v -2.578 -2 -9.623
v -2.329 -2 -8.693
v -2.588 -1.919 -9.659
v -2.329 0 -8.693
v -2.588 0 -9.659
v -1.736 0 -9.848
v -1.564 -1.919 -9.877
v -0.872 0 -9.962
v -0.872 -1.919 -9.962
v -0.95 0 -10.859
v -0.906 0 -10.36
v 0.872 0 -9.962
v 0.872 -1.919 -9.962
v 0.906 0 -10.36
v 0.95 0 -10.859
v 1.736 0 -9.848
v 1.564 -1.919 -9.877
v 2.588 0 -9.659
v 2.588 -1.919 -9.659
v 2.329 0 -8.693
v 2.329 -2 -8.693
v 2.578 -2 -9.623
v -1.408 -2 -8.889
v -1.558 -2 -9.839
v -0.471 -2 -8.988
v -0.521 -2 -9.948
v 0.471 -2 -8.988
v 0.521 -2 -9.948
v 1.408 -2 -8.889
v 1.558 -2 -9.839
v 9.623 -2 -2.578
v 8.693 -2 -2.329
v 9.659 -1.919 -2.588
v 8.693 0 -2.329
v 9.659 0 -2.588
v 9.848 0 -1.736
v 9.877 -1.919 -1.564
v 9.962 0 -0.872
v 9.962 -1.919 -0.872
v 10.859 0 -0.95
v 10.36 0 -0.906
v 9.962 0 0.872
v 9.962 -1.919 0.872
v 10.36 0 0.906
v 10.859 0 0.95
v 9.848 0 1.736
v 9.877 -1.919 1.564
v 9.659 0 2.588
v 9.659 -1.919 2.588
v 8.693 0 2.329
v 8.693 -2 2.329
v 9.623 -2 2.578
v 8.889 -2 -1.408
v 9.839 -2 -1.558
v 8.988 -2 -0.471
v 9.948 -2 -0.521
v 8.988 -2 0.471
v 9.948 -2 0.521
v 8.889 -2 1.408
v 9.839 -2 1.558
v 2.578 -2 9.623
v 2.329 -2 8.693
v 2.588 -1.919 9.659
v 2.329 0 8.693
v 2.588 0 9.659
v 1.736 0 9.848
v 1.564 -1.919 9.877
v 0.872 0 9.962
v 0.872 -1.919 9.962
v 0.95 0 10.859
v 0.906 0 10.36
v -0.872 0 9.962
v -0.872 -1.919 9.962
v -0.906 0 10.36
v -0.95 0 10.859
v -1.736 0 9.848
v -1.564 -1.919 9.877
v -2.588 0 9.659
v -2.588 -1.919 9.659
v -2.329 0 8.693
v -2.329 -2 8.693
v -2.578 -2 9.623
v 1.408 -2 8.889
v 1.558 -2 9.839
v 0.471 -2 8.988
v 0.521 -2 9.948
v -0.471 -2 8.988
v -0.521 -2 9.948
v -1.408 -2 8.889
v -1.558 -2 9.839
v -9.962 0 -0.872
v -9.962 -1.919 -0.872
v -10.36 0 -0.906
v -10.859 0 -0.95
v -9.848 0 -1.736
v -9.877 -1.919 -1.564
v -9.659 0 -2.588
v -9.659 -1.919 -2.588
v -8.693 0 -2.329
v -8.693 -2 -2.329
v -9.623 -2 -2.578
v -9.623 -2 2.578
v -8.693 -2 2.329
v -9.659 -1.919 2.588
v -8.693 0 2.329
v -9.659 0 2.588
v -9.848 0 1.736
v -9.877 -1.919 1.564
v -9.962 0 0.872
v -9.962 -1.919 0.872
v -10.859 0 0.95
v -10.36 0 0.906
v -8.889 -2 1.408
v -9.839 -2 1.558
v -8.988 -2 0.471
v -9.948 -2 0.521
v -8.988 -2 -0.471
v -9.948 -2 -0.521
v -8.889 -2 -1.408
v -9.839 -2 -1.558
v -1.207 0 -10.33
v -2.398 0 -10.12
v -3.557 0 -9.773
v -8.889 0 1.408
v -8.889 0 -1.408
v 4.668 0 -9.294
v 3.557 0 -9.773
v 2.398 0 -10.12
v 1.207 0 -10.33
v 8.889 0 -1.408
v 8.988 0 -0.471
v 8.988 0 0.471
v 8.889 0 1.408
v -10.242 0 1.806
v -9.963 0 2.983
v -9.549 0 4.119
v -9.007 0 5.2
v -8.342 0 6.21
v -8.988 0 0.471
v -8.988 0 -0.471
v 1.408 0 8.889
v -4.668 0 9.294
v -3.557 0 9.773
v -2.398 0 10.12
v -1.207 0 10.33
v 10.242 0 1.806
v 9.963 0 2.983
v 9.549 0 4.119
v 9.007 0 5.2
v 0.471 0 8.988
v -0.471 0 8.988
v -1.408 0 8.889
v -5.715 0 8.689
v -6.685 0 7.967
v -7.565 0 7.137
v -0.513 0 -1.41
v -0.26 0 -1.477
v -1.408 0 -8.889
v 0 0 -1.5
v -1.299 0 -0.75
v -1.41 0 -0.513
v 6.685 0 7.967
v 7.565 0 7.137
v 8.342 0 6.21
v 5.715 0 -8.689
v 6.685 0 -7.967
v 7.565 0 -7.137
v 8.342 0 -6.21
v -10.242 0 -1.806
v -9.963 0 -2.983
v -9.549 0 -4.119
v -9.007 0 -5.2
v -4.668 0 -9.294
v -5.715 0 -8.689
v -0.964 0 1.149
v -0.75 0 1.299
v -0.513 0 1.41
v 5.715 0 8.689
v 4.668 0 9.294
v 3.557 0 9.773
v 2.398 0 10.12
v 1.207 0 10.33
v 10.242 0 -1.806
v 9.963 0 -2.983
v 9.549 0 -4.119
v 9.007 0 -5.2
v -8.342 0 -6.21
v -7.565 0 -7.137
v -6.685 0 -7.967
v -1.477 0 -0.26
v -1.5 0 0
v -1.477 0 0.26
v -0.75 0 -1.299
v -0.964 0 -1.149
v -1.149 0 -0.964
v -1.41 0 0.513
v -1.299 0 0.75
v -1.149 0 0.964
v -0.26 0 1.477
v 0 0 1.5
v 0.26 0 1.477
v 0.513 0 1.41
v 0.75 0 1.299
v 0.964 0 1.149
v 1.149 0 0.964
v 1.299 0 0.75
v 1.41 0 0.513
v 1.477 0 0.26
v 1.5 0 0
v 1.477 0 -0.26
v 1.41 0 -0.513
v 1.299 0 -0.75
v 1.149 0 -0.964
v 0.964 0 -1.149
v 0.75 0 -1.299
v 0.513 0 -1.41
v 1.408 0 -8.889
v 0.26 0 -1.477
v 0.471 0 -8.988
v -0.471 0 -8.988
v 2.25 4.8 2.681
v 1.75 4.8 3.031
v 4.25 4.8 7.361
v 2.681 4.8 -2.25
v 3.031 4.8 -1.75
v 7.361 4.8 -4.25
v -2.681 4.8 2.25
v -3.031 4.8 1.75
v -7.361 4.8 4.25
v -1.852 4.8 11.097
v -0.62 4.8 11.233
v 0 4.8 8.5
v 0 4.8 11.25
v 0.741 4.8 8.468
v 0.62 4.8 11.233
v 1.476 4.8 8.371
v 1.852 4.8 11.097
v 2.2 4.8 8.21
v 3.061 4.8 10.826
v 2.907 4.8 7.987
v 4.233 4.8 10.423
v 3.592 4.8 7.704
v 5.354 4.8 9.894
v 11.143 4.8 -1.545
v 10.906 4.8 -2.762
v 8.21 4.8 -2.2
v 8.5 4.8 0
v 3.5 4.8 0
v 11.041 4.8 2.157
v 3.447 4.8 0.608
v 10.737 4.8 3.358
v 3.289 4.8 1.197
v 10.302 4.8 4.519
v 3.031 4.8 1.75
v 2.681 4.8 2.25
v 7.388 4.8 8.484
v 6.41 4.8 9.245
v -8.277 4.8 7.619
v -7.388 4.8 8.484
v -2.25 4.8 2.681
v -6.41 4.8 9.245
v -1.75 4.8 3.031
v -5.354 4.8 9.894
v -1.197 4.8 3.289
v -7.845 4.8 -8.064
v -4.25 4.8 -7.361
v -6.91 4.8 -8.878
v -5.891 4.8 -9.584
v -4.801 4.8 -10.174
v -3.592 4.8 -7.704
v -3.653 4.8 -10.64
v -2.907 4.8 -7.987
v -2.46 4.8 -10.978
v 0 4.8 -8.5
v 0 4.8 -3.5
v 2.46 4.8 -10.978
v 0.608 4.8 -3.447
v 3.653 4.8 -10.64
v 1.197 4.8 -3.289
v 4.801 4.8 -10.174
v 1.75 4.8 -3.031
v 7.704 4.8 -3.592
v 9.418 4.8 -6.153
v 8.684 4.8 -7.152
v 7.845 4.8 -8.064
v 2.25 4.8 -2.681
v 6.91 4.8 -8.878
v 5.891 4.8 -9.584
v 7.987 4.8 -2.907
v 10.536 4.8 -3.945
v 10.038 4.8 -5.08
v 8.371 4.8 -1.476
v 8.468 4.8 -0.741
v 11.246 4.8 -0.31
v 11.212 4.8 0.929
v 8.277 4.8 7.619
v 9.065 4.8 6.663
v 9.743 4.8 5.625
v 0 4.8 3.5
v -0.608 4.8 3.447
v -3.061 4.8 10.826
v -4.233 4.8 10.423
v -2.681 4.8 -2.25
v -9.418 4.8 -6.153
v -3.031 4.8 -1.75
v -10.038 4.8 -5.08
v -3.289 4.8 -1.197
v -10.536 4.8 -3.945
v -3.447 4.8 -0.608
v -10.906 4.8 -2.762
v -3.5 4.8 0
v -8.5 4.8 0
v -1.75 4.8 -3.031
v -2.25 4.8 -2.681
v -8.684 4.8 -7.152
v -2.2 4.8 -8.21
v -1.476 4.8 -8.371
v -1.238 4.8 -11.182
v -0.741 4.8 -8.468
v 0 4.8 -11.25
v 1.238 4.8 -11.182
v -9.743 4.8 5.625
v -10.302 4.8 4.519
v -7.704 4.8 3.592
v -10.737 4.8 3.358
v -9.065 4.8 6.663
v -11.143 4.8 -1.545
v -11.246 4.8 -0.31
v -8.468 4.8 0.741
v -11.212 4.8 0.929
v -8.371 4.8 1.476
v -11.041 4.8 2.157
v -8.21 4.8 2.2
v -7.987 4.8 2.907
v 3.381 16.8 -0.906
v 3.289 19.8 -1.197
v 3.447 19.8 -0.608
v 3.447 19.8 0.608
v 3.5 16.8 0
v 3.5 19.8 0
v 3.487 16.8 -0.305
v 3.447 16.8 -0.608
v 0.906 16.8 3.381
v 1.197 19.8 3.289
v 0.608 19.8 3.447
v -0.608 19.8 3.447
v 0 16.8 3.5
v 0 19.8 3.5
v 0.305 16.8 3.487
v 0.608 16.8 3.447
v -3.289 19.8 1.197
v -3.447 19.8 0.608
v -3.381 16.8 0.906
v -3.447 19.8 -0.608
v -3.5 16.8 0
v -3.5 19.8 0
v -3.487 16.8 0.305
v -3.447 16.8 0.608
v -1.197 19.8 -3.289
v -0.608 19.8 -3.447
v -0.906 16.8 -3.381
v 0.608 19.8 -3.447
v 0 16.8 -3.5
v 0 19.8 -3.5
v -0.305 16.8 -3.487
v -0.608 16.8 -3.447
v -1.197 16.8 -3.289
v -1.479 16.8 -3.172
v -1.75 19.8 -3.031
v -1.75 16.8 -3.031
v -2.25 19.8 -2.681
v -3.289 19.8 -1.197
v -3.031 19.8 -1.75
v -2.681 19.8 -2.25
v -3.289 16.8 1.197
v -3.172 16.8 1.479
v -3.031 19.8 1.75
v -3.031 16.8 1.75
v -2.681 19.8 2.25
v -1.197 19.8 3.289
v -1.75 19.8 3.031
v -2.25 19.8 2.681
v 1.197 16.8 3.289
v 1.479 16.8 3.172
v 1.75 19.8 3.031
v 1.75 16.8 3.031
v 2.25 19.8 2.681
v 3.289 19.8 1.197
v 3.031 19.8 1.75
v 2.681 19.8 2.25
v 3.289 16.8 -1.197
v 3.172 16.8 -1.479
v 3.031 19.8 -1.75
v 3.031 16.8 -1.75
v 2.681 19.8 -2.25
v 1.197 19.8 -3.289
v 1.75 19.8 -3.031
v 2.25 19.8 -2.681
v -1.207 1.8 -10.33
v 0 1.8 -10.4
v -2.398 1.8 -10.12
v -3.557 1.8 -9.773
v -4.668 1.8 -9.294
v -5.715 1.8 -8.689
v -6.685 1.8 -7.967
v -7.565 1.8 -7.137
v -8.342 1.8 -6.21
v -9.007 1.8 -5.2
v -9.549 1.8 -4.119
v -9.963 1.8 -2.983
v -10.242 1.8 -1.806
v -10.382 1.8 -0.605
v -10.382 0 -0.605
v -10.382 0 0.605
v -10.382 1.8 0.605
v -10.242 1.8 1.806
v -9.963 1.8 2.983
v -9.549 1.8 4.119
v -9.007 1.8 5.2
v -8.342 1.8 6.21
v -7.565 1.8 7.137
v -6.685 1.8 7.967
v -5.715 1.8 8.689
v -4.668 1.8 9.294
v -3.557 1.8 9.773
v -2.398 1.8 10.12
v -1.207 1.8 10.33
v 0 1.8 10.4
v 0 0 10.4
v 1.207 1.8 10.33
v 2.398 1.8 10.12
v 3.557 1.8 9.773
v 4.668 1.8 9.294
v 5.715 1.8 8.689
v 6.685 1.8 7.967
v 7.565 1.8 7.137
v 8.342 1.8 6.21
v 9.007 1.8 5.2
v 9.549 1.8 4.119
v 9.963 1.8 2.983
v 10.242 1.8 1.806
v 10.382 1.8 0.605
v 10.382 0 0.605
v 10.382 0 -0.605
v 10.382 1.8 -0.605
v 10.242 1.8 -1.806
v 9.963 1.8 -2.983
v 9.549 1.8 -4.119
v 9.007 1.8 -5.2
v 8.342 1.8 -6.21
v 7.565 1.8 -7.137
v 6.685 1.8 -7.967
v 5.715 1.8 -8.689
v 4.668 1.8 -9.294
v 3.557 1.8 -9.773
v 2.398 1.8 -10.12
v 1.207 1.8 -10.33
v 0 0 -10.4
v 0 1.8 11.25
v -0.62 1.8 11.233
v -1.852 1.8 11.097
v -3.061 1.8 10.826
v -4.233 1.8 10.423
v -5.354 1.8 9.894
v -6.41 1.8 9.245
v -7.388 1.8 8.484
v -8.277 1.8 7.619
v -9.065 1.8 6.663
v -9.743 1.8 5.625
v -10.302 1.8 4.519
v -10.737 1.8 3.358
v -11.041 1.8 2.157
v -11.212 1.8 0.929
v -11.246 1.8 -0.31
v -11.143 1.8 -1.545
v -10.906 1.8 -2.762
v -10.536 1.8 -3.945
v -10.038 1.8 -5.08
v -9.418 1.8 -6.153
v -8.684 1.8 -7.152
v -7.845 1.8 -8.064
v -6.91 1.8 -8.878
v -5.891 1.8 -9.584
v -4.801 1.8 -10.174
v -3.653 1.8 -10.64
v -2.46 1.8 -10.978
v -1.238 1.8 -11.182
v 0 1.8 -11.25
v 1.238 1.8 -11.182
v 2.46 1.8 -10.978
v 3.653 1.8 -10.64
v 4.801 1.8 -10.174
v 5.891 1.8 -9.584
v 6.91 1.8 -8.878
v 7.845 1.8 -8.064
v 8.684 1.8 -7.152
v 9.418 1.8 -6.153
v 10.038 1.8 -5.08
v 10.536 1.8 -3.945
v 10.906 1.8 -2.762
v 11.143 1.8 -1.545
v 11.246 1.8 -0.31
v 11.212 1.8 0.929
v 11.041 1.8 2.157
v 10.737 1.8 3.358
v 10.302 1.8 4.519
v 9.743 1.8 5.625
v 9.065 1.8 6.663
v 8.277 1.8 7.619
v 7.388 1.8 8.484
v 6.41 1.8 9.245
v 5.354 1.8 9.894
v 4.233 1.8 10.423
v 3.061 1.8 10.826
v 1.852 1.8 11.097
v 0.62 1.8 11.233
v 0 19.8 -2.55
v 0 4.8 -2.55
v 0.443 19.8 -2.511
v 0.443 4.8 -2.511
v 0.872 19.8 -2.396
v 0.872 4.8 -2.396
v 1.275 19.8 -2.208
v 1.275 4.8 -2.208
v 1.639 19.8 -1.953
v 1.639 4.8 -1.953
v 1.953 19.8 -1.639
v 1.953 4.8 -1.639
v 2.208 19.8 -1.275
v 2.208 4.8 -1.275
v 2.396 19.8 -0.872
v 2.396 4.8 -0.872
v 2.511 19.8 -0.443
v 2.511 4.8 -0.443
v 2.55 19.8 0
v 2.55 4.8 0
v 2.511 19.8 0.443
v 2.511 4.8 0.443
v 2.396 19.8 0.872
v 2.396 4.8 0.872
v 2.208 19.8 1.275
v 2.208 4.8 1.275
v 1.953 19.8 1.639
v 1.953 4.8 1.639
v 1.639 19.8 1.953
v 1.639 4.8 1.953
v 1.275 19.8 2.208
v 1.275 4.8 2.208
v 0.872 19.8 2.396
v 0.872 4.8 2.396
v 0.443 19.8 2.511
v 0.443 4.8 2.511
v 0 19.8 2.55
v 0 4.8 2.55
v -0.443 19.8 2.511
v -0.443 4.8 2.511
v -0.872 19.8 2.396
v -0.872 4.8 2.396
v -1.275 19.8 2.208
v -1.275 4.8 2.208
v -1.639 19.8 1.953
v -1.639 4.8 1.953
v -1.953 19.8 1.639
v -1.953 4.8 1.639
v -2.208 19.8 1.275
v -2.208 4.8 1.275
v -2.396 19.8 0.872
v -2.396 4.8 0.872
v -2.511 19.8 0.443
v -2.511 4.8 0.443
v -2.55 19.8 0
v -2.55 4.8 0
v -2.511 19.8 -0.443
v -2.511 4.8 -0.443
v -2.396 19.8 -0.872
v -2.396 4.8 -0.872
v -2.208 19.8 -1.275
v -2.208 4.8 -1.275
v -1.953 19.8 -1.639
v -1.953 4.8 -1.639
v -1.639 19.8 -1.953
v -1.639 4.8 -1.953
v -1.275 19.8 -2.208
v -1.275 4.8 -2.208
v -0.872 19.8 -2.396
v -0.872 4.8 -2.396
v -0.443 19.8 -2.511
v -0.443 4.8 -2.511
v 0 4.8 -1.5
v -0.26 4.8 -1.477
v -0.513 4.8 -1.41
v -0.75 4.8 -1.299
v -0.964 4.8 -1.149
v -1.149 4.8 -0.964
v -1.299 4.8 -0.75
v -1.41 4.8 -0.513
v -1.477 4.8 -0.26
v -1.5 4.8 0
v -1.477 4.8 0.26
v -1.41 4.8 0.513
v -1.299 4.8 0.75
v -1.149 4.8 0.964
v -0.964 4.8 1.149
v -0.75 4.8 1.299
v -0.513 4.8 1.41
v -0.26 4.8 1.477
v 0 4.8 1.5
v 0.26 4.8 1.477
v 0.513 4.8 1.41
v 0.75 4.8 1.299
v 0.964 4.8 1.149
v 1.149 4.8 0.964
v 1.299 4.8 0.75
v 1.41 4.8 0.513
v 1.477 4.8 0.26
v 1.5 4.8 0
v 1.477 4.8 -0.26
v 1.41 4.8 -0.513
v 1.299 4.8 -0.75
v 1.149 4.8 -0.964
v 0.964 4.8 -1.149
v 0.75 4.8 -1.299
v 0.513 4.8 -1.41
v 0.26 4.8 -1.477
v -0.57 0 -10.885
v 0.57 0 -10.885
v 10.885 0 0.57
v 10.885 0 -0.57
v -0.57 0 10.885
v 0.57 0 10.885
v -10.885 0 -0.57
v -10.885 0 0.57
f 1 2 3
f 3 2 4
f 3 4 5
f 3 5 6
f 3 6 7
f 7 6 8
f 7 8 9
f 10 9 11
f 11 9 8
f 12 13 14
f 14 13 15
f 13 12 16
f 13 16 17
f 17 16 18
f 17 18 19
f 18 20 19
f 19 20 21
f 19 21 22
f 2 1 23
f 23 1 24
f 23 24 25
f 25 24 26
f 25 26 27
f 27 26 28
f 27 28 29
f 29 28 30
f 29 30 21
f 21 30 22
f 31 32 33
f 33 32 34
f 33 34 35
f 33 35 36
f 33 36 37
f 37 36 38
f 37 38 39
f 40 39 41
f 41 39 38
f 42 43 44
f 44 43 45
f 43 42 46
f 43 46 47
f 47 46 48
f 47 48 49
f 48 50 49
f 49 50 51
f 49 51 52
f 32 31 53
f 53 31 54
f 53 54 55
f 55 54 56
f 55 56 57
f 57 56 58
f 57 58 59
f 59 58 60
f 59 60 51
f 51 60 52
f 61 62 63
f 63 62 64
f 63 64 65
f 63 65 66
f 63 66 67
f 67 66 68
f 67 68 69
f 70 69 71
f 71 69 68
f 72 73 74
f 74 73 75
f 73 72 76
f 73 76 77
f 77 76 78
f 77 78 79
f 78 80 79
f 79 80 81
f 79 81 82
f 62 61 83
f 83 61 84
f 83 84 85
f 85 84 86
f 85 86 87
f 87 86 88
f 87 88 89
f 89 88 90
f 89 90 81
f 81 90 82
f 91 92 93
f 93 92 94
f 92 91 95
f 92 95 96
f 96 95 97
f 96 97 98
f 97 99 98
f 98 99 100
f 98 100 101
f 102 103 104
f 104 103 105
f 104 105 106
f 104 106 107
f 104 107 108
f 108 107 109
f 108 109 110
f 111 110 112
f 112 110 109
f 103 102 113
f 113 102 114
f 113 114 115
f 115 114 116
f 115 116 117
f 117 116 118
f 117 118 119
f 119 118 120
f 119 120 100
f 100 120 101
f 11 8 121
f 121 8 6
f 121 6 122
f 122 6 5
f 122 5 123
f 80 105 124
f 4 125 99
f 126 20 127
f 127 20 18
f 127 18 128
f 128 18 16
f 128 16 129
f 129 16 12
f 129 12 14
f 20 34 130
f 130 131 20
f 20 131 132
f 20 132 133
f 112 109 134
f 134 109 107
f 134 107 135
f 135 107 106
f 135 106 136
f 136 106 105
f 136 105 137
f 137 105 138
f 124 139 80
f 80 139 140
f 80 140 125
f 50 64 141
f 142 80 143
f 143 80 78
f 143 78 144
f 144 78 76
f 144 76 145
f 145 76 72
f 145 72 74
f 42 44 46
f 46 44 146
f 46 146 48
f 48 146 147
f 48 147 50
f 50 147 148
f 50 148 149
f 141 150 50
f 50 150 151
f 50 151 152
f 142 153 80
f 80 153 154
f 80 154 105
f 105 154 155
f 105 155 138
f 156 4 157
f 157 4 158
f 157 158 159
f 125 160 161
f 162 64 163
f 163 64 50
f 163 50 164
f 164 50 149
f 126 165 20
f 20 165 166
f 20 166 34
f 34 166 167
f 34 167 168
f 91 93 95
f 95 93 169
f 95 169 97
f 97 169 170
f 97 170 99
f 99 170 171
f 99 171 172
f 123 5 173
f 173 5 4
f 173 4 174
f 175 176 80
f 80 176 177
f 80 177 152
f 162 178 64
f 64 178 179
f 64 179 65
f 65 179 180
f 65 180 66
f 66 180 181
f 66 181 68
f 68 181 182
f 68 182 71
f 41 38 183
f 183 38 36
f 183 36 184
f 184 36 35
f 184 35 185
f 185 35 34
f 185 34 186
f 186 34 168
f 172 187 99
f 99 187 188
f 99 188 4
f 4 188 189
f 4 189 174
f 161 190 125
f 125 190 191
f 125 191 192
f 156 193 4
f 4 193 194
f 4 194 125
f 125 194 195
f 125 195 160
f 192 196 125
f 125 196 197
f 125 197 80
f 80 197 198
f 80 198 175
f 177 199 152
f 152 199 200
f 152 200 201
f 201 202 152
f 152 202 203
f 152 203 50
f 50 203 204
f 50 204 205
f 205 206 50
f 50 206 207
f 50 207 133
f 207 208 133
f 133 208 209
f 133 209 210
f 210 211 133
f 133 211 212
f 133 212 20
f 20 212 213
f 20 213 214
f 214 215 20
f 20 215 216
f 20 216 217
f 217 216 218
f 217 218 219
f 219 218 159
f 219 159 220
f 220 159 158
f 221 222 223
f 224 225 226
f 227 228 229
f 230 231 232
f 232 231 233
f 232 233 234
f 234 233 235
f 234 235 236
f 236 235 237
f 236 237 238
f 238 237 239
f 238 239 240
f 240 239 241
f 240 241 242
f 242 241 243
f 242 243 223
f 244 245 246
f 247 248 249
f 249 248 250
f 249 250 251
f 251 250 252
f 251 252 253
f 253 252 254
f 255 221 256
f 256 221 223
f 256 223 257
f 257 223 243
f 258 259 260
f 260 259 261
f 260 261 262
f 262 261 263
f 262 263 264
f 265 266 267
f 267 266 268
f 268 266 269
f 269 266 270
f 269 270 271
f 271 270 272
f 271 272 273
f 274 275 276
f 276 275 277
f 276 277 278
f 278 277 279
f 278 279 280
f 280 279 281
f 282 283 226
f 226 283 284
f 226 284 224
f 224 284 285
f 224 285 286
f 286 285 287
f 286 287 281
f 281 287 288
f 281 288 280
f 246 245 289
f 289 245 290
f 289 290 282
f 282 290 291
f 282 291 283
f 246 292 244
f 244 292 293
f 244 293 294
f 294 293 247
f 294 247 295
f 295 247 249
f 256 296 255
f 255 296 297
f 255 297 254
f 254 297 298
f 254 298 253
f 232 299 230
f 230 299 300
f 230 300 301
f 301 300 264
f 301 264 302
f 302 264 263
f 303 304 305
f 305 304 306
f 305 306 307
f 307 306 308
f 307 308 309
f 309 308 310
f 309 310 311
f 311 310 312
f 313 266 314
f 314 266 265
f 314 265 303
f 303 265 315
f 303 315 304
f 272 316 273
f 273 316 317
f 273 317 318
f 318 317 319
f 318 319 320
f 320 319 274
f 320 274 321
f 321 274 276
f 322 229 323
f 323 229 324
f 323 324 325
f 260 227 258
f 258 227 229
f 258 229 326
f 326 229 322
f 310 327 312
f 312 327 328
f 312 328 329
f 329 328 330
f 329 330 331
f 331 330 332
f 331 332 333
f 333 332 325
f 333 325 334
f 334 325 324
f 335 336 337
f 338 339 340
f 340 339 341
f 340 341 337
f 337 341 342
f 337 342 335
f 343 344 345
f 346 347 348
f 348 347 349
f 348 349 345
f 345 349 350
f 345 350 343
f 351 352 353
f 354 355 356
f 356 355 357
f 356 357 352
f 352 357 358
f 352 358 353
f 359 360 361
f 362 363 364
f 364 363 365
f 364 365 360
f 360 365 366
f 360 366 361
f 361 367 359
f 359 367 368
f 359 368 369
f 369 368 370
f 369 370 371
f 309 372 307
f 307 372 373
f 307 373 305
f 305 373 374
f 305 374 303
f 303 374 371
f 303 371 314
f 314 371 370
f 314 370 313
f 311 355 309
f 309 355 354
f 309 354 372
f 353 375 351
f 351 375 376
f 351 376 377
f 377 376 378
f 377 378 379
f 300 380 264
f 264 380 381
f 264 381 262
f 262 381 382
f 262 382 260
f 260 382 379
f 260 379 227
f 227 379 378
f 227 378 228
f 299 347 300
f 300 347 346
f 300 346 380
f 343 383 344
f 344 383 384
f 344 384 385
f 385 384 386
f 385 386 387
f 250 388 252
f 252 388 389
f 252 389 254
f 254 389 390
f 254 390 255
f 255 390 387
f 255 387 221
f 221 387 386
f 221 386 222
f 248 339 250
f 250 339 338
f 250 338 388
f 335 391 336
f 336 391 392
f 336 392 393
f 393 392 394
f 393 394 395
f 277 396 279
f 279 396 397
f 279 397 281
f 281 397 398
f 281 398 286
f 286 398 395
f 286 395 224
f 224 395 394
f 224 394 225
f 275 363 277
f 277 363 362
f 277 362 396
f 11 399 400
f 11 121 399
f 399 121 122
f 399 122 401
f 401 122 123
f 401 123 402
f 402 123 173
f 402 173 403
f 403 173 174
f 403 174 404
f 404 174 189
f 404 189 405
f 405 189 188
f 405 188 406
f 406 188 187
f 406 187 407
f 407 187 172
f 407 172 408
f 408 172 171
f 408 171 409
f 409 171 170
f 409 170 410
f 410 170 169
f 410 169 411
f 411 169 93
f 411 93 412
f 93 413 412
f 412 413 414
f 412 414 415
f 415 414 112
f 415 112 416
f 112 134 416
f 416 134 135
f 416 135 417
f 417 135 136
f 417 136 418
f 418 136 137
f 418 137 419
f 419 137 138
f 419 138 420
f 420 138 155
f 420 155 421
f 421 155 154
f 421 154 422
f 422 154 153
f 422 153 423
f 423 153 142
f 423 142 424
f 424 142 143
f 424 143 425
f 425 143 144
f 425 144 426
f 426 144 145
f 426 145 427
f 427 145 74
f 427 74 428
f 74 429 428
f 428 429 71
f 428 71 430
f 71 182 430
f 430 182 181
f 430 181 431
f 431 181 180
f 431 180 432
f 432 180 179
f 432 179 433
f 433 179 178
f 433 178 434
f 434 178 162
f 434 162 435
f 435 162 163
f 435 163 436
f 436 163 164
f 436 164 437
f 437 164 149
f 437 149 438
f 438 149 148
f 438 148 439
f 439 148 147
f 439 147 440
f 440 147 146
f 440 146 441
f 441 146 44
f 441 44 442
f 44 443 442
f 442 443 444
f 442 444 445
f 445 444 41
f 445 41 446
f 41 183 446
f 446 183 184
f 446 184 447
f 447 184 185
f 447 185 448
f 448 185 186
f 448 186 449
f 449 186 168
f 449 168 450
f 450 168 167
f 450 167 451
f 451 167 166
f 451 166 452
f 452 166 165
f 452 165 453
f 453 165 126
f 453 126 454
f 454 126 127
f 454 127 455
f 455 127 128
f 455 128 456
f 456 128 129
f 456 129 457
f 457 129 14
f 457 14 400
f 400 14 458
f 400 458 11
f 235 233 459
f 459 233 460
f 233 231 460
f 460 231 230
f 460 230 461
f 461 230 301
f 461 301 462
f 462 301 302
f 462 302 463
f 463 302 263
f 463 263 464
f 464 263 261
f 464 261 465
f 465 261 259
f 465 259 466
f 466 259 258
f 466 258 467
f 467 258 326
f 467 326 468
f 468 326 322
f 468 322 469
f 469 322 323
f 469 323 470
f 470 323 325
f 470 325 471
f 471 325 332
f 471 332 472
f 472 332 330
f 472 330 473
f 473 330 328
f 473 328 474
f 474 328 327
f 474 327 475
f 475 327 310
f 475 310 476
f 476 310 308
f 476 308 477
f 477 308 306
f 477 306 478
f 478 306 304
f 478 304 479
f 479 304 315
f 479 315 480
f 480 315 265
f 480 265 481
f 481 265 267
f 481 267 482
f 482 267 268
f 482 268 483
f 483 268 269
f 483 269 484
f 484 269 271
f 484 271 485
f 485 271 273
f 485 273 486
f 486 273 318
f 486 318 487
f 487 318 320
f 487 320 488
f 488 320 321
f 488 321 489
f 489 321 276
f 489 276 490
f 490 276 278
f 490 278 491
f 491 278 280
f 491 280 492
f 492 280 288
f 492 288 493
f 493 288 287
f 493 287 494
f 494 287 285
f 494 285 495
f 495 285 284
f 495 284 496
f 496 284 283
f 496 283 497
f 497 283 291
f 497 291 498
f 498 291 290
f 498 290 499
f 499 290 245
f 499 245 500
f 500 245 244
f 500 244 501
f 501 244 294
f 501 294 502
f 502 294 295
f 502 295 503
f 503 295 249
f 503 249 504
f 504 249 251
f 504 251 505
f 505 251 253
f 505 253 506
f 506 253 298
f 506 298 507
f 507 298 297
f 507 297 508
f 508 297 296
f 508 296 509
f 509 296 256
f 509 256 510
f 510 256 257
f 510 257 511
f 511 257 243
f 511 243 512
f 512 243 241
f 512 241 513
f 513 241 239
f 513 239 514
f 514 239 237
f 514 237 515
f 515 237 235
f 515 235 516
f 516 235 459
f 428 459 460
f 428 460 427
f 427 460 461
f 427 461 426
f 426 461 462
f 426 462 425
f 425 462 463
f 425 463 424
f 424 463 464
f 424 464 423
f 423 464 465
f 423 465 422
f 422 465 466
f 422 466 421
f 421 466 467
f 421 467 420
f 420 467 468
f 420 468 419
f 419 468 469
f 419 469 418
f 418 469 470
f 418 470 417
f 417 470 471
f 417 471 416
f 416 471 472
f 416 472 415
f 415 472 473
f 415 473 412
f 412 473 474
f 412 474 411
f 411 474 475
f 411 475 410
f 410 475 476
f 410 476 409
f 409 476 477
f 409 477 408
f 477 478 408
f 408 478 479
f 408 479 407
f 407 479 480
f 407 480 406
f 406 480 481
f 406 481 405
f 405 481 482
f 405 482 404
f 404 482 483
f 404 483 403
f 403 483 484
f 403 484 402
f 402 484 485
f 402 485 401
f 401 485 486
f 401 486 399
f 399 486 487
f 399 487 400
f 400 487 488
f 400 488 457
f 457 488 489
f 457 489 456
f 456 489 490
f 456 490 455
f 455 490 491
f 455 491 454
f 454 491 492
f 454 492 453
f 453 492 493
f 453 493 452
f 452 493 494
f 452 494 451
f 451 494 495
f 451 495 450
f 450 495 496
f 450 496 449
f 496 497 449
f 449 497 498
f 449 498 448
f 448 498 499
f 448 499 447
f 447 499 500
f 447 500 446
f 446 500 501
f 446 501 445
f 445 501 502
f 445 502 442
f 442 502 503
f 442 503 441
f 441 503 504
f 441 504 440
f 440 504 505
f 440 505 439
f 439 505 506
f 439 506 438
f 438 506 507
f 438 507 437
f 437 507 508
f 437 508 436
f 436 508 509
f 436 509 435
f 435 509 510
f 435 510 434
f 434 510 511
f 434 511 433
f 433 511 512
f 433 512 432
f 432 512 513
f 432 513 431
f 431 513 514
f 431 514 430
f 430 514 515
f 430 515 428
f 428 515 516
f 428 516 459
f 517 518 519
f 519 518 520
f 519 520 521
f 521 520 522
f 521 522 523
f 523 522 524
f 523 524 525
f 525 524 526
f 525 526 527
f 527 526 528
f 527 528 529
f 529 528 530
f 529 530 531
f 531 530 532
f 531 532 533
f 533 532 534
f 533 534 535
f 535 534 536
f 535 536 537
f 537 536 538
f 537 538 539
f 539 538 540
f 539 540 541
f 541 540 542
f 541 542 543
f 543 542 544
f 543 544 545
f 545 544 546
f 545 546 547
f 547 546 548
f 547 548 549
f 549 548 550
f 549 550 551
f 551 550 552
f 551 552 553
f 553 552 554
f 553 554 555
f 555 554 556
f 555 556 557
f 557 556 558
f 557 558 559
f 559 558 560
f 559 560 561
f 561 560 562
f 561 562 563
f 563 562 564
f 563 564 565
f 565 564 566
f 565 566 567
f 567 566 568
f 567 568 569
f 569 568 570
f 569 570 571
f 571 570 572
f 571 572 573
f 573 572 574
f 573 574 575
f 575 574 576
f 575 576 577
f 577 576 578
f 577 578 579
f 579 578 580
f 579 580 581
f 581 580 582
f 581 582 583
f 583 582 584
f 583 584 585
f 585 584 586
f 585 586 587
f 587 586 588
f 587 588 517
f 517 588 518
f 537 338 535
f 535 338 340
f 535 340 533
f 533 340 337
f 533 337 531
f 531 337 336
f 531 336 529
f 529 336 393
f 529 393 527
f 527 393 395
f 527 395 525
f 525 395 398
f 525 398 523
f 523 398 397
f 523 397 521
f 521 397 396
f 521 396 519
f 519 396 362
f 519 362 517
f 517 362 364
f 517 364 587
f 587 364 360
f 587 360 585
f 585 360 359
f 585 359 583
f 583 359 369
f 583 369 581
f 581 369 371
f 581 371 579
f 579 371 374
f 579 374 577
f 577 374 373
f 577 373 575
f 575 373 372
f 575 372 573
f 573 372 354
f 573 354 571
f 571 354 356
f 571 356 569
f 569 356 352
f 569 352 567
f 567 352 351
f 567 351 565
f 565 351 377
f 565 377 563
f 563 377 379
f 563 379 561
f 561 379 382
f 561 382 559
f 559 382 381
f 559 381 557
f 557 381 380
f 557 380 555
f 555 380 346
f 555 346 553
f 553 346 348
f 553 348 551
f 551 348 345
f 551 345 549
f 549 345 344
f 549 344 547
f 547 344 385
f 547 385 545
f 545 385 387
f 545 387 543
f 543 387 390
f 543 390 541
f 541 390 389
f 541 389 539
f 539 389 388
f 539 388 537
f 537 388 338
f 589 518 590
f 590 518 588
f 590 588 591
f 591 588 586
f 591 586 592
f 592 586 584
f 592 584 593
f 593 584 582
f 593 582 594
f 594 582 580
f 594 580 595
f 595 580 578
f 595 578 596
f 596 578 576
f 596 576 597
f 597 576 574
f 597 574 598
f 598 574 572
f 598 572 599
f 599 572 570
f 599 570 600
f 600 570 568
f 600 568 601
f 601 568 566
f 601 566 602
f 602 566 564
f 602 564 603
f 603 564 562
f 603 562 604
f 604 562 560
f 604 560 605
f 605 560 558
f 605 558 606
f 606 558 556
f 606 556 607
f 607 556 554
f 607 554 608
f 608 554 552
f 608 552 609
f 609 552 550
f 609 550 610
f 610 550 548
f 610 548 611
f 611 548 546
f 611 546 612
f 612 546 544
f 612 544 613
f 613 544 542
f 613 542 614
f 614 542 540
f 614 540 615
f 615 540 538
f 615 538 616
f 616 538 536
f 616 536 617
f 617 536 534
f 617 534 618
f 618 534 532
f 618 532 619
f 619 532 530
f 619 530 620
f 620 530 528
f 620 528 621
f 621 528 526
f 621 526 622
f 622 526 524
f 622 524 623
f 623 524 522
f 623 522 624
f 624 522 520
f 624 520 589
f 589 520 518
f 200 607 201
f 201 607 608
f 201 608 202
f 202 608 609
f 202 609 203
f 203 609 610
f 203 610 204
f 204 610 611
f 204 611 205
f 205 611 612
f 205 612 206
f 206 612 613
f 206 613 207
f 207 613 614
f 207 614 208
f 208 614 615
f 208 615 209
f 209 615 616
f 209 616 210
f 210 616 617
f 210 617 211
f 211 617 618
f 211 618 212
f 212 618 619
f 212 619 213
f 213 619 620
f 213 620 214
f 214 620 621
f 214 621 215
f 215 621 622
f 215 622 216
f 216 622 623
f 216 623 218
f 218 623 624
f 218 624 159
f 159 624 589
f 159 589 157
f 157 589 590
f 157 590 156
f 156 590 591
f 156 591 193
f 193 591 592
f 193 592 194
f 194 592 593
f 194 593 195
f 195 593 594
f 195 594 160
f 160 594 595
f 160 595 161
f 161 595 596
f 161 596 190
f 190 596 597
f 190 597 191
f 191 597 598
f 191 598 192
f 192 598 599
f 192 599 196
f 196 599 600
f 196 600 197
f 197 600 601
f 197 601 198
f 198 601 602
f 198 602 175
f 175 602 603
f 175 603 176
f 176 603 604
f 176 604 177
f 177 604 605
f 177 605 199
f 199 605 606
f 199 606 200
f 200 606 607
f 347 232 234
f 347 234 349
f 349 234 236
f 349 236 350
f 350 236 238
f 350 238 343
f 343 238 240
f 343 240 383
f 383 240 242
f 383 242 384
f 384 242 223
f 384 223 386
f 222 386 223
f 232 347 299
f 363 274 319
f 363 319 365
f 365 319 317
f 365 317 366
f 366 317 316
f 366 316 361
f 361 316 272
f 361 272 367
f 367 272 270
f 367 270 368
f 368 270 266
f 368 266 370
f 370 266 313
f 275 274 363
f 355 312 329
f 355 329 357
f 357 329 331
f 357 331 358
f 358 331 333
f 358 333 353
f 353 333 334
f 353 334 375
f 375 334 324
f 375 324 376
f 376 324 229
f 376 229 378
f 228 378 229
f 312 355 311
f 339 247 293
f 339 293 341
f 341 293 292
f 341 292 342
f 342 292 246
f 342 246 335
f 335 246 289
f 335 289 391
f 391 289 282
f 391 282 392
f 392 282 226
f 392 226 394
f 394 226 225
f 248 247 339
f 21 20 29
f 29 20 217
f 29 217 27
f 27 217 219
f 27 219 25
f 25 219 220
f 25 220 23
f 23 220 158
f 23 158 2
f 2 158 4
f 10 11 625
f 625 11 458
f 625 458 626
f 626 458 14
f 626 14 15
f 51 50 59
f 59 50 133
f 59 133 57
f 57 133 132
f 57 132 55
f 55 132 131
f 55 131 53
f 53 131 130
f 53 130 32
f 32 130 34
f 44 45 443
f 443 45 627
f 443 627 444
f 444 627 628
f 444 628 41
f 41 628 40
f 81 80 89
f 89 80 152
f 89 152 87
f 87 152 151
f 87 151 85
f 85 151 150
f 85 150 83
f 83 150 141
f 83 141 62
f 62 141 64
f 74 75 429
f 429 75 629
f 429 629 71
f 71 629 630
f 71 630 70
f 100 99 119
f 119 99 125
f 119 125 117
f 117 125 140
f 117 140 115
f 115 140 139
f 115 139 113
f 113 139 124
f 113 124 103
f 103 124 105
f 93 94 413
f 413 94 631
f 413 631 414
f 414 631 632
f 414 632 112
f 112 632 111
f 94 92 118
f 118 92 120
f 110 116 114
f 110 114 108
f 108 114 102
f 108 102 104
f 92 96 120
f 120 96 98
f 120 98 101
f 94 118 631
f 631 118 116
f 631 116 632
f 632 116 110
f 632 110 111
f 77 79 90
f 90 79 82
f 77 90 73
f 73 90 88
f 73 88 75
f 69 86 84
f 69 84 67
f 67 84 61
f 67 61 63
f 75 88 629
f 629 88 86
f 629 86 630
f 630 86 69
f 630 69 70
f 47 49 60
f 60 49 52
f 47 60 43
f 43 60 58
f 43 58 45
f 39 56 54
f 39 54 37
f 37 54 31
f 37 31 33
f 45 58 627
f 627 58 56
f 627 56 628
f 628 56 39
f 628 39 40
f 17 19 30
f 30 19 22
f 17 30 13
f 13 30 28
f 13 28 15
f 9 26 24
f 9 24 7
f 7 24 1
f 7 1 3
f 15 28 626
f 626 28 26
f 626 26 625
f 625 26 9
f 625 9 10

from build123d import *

# Parameters (mm, degrees)
SKETCH_1_R          = 10.4
EXTRUDE_1_DEPTH     = 1.8
SKETCH_2_R          = 11.25
EXTRUDE_2_DEPTH     = 3
SKETCH_3_R          = 3.5
SKETCH_3_R_2        = 2.55
EXTRUDE_3_DEPTH     = 15
SKETCH_3_4_R        = 1.5
CUT_EXTRUDE_2_DEPTH = 4.8
REVOLVE_3_ANGLE     = 30
REVOLVE_4_ANGLE     = 30
EXTRUDE_4_DEPTH     = 2


with BuildPart() as part:
    # 草图1 → 凸台-拉伸1 (new body)
    with BuildSketch(Plane(origin=(0, 0, 0), x_dir=(1, 0, 0), z_dir=(0, 1, 0))):
        with Locations(Location((0, 0, 0), (0, 0, 270))):
            Circle(SKETCH_1_R)
    extrude(amount=EXTRUDE_1_DEPTH)

    # 草图2 → 凸台-拉伸2 (add)
    with BuildSketch(Plane(origin=(0, 1.8, 0), x_dir=(1, 0, 0), z_dir=(0, 1, 0))):
        with Locations(Location((0, 0, 0), (0, 0, 270))):
            Circle(SKETCH_2_R)
    extrude(amount=EXTRUDE_2_DEPTH)

    # 草图3 → 凸台-拉伸3 (add)
    with BuildSketch(Plane(origin=(0, 4.8, 0), x_dir=(1, 0, 0), z_dir=(0, 1, 0))):
        with Locations(Location((0, 0, 0), (0, 0, 270))):
            Circle(SKETCH_3_R)
        with Locations(Location((0, 0, 0), (0, 0, 270))):
            Circle(SKETCH_3_R_2, mode=Mode.SUBTRACT)
    extrude(amount=EXTRUDE_3_DEPTH)

    # 草图3<4> → 切除-拉伸2 (cut)
    with BuildSketch(Plane(origin=(0, 4.8, 0), x_dir=(1, 0, 0), z_dir=(0, 1, 0))):
        with Locations(Location((0, 0, 0), (0, 0, 270))):
            Circle(SKETCH_3_4_R)
    extrude(amount=-CUT_EXTRUDE_2_DEPTH, mode=Mode.SUBTRACT)

    # 草图6 → 旋转3 (revolve)
    with BuildSketch(Plane(origin=(0, 0, 0), x_dir=(0, 0, -1), z_dir=(1, 0, 0))):
        Polygon((3.5, 4.8), (3.5, 16.8), (8.5, 4.8), align=None)
        Polygon((-8.5, 4.8), (-3.5, 4.8), (-3.5, 16.8), align=None)
    revolve(axis=Axis((0, 0, 0), (0, 1, 0)), revolution_arc=REVOLVE_3_ANGLE)

    # 草图9 → 旋转4 (revolve)
    with BuildSketch(Plane.XY):
        Polygon((3.5, 4.8), (8.5, 4.8), (3.5, 16.8), align=None)
        Polygon((-8.5, 4.8), (-3.5, 16.8), (-3.5, 4.8), align=None)
    revolve(axis=Axis((0, 0, 0), (0, 1, 0)), revolution_arc=REVOLVE_4_ANGLE)

    # 草图10 → 凸台-拉伸4 (add)
    with BuildSketch(Plane.XZ):
        with BuildLine():
            Line((9.961946981, -0.871557427), (10.858522209, -0.949997596))
            ThreePointArc((10.858522209, -0.949997596), (10.9, 0), (10.858522209, 0.949997596))
            Line((10.858522209, 0.949997596), (9.961946981, 0.871557427))
            ThreePointArc((9.961946981, 0.871557427), (9.84807753, 1.736481777), (9.659258263, 2.588190451))
            Line((9.659258263, 2.588190451), (8.693332437, 2.329371406))
            ThreePointArc((8.693332437, 2.329371406), (9, 0), (8.693332437, -2.329371406))
            Line((8.693332437, -2.329371406), (9.659258263, -2.588190451))
            ThreePointArc((9.659258263, -2.588190451), (9.84807753, -1.736481777), (9.961946981, -0.871557427))
        make_face()
        with BuildLine():
            Line((2.329371406, 8.693332437), (2.588190451, 9.659258263))
            ThreePointArc((2.588190451, 9.659258263), (1.736481777, 9.84807753), (0.871557427, 9.961946981))
            Line((0.871557427, 9.961946981), (0.949997596, 10.858522209))
            ThreePointArc((0.949997596, 10.858522209), (0, 10.9), (-0.949997596, 10.858522209))
            Line((-0.949997596, 10.858522209), (-0.871557427, 9.961946981))
            ThreePointArc((-0.871557427, 9.961946981), (-1.736481777, 9.84807753), (-2.588190451, 9.659258263))
            Line((-2.588190451, 9.659258263), (-2.329371406, 8.693332437))
            ThreePointArc((-2.329371406, 8.693332437), (0, 9), (2.329371406, 8.693332437))
        make_face()
        with BuildLine():
            Line((-2.329371406, -8.693332437), (-2.588190451, -9.659258263))
            ThreePointArc((-2.588190451, -9.659258263), (-1.736481777, -9.84807753), (-0.871557427, -9.961946981))
            Line((-0.871557427, -9.961946981), (-0.949997596, -10.858522209))
            ThreePointArc((-0.949997596, -10.858522209), (0, -10.9), (0.949997596, -10.858522209))
            Line((0.949997596, -10.858522209), (0.871557427, -9.961946981))
            ThreePointArc((0.871557427, -9.961946981), (1.736481777, -9.84807753), (2.588190451, -9.659258263))
            Line((2.588190451, -9.659258263), (2.329371406, -8.693332437))
            ThreePointArc((2.329371406, -8.693332437), (0, -9), (-2.329371406, -8.693332437))
        make_face()
        with BuildLine():
            Line((-8.693332437, 2.329371406), (-9.659258263, 2.588190451))
            ThreePointArc((-9.659258263, 2.588190451), (-9.84807753, 1.736481777), (-9.961946981, 0.871557427))
            Line((-9.961946981, 0.871557427), (-10.858522209, 0.949997596))
            ThreePointArc((-10.858522209, 0.949997596), (-10.9, 0), (-10.858522209, -0.949997596))
            Line((-10.858522209, -0.949997596), (-9.961946981, -0.871557427))
            ThreePointArc((-9.961946981, -0.871557427), (-9.84807753, -1.736481777), (-9.659258263, -2.588190451))
            Line((-9.659258263, -2.588190451), (-8.693332437, -2.329371406))
            ThreePointArc((-8.693332437, -2.329371406), (-9, 0), (-8.693332437, 2.329371406))
        make_face()
    extrude(amount=EXTRUDE_4_DEPTH)

    # 草图11 → 切除-旋转2 (revolve, cut)
    with BuildSketch(Plane.XY, mode=Mode.PRIVATE) as cut_revolve_2_sk:
        Polygon((9.961946981, -2), (10.9, -2), (10.9, 0), align=None)
    revolve(cut_revolve_2_sk.sketch.rotate(Axis((0, 0, 0), (0, -1, 0)), 275), axis=Axis((0, 0, 0), (0, -1, 0)), mode=Mode.SUBTRACT)


solid = part.part
